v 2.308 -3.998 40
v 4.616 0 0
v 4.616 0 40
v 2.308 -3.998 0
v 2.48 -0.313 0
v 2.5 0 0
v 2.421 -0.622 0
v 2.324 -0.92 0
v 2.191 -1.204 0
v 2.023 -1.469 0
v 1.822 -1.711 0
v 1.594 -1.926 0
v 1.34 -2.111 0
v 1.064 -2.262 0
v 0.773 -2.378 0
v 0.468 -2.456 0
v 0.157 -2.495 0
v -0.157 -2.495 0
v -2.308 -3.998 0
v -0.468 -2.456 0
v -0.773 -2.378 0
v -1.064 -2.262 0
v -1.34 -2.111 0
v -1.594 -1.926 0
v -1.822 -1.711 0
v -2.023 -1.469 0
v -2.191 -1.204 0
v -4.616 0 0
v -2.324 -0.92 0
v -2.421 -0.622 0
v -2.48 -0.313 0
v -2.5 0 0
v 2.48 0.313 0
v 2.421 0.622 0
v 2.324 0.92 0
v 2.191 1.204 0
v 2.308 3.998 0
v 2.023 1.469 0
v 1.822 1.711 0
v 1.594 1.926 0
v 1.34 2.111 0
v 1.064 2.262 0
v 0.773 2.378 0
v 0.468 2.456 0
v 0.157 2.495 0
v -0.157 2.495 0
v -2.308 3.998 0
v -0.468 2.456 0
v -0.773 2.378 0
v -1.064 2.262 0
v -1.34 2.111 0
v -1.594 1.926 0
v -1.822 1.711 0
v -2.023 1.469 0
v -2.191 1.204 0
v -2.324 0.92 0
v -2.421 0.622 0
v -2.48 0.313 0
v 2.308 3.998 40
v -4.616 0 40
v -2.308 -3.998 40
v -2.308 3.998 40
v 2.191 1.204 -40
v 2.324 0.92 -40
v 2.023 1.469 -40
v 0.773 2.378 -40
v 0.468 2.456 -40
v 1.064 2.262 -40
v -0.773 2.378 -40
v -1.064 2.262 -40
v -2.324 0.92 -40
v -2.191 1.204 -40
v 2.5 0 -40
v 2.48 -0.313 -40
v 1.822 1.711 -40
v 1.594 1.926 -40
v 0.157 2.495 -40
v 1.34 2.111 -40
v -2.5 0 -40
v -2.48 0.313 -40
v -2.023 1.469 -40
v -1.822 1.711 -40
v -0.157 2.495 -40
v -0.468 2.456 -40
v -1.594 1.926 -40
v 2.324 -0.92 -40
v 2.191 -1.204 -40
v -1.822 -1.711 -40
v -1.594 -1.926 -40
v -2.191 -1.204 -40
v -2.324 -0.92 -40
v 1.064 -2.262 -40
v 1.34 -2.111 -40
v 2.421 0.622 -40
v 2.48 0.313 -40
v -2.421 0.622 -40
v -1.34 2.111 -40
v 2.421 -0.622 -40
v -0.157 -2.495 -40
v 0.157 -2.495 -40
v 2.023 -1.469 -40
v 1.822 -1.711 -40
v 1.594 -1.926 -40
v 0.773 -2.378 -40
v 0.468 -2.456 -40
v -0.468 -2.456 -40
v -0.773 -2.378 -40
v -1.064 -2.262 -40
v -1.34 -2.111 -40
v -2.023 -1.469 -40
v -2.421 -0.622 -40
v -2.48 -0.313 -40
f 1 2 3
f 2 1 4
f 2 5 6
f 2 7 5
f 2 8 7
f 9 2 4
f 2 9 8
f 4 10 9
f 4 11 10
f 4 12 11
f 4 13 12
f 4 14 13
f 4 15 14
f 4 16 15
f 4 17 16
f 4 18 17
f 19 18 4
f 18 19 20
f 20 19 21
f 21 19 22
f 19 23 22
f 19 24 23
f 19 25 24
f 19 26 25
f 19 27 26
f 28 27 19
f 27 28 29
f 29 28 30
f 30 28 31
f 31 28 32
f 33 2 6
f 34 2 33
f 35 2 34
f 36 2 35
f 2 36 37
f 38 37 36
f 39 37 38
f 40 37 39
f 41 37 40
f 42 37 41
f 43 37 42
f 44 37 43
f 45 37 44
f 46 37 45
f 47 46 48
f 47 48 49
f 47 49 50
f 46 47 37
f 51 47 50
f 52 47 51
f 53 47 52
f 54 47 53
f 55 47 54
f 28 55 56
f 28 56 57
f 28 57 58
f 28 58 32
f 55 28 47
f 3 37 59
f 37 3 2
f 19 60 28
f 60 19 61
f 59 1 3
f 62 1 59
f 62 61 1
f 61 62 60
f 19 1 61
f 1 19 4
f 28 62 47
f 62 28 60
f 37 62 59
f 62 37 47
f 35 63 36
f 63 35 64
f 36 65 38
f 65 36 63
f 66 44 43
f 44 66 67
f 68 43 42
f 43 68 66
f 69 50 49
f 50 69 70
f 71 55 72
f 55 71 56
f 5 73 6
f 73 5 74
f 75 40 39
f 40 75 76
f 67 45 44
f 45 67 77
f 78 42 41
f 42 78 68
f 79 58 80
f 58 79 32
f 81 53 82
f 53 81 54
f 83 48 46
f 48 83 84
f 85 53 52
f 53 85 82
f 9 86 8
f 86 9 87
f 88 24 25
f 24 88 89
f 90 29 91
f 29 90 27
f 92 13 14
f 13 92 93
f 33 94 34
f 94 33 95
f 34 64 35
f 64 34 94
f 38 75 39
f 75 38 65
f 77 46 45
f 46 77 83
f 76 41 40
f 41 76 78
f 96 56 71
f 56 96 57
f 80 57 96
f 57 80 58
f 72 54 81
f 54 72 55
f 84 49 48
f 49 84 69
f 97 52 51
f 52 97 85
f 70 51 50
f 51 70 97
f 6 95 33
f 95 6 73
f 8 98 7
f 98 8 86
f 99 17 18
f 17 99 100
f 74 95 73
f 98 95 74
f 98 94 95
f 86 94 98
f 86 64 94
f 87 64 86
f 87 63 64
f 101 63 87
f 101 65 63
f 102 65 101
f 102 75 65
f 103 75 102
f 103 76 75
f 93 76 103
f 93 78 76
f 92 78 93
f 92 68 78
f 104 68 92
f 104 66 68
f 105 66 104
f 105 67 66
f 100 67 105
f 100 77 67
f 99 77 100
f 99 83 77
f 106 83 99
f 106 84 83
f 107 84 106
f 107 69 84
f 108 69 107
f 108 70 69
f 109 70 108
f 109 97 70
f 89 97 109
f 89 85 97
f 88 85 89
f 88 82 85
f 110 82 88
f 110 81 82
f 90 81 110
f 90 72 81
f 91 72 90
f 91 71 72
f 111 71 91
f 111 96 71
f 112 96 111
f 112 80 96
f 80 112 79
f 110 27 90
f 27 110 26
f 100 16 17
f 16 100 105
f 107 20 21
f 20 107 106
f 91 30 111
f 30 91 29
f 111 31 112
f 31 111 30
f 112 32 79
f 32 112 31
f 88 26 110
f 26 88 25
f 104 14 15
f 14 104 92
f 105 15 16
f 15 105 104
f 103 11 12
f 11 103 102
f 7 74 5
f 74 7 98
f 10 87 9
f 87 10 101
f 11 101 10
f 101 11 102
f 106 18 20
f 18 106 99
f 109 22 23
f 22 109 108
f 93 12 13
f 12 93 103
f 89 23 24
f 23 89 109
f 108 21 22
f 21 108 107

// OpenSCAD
$fn = 50;


difference() {
	union() {
		linear_extrude(height = 40) {
			polygon(points = [[4.6160000000, 0.0000000000], [2.3080000000, 3.9975732639], [-2.3080000000, 3.9975732639], [-4.6160000000, 0.0000000000], [-2.3080000000, -3.9975732639], [2.3080000000, -3.9975732639]]);
		}
		translate(v = [0, 0, -40]) {
			cylinder(h = 40, r = 2.5000000000);
		}
	}
	union();
}
